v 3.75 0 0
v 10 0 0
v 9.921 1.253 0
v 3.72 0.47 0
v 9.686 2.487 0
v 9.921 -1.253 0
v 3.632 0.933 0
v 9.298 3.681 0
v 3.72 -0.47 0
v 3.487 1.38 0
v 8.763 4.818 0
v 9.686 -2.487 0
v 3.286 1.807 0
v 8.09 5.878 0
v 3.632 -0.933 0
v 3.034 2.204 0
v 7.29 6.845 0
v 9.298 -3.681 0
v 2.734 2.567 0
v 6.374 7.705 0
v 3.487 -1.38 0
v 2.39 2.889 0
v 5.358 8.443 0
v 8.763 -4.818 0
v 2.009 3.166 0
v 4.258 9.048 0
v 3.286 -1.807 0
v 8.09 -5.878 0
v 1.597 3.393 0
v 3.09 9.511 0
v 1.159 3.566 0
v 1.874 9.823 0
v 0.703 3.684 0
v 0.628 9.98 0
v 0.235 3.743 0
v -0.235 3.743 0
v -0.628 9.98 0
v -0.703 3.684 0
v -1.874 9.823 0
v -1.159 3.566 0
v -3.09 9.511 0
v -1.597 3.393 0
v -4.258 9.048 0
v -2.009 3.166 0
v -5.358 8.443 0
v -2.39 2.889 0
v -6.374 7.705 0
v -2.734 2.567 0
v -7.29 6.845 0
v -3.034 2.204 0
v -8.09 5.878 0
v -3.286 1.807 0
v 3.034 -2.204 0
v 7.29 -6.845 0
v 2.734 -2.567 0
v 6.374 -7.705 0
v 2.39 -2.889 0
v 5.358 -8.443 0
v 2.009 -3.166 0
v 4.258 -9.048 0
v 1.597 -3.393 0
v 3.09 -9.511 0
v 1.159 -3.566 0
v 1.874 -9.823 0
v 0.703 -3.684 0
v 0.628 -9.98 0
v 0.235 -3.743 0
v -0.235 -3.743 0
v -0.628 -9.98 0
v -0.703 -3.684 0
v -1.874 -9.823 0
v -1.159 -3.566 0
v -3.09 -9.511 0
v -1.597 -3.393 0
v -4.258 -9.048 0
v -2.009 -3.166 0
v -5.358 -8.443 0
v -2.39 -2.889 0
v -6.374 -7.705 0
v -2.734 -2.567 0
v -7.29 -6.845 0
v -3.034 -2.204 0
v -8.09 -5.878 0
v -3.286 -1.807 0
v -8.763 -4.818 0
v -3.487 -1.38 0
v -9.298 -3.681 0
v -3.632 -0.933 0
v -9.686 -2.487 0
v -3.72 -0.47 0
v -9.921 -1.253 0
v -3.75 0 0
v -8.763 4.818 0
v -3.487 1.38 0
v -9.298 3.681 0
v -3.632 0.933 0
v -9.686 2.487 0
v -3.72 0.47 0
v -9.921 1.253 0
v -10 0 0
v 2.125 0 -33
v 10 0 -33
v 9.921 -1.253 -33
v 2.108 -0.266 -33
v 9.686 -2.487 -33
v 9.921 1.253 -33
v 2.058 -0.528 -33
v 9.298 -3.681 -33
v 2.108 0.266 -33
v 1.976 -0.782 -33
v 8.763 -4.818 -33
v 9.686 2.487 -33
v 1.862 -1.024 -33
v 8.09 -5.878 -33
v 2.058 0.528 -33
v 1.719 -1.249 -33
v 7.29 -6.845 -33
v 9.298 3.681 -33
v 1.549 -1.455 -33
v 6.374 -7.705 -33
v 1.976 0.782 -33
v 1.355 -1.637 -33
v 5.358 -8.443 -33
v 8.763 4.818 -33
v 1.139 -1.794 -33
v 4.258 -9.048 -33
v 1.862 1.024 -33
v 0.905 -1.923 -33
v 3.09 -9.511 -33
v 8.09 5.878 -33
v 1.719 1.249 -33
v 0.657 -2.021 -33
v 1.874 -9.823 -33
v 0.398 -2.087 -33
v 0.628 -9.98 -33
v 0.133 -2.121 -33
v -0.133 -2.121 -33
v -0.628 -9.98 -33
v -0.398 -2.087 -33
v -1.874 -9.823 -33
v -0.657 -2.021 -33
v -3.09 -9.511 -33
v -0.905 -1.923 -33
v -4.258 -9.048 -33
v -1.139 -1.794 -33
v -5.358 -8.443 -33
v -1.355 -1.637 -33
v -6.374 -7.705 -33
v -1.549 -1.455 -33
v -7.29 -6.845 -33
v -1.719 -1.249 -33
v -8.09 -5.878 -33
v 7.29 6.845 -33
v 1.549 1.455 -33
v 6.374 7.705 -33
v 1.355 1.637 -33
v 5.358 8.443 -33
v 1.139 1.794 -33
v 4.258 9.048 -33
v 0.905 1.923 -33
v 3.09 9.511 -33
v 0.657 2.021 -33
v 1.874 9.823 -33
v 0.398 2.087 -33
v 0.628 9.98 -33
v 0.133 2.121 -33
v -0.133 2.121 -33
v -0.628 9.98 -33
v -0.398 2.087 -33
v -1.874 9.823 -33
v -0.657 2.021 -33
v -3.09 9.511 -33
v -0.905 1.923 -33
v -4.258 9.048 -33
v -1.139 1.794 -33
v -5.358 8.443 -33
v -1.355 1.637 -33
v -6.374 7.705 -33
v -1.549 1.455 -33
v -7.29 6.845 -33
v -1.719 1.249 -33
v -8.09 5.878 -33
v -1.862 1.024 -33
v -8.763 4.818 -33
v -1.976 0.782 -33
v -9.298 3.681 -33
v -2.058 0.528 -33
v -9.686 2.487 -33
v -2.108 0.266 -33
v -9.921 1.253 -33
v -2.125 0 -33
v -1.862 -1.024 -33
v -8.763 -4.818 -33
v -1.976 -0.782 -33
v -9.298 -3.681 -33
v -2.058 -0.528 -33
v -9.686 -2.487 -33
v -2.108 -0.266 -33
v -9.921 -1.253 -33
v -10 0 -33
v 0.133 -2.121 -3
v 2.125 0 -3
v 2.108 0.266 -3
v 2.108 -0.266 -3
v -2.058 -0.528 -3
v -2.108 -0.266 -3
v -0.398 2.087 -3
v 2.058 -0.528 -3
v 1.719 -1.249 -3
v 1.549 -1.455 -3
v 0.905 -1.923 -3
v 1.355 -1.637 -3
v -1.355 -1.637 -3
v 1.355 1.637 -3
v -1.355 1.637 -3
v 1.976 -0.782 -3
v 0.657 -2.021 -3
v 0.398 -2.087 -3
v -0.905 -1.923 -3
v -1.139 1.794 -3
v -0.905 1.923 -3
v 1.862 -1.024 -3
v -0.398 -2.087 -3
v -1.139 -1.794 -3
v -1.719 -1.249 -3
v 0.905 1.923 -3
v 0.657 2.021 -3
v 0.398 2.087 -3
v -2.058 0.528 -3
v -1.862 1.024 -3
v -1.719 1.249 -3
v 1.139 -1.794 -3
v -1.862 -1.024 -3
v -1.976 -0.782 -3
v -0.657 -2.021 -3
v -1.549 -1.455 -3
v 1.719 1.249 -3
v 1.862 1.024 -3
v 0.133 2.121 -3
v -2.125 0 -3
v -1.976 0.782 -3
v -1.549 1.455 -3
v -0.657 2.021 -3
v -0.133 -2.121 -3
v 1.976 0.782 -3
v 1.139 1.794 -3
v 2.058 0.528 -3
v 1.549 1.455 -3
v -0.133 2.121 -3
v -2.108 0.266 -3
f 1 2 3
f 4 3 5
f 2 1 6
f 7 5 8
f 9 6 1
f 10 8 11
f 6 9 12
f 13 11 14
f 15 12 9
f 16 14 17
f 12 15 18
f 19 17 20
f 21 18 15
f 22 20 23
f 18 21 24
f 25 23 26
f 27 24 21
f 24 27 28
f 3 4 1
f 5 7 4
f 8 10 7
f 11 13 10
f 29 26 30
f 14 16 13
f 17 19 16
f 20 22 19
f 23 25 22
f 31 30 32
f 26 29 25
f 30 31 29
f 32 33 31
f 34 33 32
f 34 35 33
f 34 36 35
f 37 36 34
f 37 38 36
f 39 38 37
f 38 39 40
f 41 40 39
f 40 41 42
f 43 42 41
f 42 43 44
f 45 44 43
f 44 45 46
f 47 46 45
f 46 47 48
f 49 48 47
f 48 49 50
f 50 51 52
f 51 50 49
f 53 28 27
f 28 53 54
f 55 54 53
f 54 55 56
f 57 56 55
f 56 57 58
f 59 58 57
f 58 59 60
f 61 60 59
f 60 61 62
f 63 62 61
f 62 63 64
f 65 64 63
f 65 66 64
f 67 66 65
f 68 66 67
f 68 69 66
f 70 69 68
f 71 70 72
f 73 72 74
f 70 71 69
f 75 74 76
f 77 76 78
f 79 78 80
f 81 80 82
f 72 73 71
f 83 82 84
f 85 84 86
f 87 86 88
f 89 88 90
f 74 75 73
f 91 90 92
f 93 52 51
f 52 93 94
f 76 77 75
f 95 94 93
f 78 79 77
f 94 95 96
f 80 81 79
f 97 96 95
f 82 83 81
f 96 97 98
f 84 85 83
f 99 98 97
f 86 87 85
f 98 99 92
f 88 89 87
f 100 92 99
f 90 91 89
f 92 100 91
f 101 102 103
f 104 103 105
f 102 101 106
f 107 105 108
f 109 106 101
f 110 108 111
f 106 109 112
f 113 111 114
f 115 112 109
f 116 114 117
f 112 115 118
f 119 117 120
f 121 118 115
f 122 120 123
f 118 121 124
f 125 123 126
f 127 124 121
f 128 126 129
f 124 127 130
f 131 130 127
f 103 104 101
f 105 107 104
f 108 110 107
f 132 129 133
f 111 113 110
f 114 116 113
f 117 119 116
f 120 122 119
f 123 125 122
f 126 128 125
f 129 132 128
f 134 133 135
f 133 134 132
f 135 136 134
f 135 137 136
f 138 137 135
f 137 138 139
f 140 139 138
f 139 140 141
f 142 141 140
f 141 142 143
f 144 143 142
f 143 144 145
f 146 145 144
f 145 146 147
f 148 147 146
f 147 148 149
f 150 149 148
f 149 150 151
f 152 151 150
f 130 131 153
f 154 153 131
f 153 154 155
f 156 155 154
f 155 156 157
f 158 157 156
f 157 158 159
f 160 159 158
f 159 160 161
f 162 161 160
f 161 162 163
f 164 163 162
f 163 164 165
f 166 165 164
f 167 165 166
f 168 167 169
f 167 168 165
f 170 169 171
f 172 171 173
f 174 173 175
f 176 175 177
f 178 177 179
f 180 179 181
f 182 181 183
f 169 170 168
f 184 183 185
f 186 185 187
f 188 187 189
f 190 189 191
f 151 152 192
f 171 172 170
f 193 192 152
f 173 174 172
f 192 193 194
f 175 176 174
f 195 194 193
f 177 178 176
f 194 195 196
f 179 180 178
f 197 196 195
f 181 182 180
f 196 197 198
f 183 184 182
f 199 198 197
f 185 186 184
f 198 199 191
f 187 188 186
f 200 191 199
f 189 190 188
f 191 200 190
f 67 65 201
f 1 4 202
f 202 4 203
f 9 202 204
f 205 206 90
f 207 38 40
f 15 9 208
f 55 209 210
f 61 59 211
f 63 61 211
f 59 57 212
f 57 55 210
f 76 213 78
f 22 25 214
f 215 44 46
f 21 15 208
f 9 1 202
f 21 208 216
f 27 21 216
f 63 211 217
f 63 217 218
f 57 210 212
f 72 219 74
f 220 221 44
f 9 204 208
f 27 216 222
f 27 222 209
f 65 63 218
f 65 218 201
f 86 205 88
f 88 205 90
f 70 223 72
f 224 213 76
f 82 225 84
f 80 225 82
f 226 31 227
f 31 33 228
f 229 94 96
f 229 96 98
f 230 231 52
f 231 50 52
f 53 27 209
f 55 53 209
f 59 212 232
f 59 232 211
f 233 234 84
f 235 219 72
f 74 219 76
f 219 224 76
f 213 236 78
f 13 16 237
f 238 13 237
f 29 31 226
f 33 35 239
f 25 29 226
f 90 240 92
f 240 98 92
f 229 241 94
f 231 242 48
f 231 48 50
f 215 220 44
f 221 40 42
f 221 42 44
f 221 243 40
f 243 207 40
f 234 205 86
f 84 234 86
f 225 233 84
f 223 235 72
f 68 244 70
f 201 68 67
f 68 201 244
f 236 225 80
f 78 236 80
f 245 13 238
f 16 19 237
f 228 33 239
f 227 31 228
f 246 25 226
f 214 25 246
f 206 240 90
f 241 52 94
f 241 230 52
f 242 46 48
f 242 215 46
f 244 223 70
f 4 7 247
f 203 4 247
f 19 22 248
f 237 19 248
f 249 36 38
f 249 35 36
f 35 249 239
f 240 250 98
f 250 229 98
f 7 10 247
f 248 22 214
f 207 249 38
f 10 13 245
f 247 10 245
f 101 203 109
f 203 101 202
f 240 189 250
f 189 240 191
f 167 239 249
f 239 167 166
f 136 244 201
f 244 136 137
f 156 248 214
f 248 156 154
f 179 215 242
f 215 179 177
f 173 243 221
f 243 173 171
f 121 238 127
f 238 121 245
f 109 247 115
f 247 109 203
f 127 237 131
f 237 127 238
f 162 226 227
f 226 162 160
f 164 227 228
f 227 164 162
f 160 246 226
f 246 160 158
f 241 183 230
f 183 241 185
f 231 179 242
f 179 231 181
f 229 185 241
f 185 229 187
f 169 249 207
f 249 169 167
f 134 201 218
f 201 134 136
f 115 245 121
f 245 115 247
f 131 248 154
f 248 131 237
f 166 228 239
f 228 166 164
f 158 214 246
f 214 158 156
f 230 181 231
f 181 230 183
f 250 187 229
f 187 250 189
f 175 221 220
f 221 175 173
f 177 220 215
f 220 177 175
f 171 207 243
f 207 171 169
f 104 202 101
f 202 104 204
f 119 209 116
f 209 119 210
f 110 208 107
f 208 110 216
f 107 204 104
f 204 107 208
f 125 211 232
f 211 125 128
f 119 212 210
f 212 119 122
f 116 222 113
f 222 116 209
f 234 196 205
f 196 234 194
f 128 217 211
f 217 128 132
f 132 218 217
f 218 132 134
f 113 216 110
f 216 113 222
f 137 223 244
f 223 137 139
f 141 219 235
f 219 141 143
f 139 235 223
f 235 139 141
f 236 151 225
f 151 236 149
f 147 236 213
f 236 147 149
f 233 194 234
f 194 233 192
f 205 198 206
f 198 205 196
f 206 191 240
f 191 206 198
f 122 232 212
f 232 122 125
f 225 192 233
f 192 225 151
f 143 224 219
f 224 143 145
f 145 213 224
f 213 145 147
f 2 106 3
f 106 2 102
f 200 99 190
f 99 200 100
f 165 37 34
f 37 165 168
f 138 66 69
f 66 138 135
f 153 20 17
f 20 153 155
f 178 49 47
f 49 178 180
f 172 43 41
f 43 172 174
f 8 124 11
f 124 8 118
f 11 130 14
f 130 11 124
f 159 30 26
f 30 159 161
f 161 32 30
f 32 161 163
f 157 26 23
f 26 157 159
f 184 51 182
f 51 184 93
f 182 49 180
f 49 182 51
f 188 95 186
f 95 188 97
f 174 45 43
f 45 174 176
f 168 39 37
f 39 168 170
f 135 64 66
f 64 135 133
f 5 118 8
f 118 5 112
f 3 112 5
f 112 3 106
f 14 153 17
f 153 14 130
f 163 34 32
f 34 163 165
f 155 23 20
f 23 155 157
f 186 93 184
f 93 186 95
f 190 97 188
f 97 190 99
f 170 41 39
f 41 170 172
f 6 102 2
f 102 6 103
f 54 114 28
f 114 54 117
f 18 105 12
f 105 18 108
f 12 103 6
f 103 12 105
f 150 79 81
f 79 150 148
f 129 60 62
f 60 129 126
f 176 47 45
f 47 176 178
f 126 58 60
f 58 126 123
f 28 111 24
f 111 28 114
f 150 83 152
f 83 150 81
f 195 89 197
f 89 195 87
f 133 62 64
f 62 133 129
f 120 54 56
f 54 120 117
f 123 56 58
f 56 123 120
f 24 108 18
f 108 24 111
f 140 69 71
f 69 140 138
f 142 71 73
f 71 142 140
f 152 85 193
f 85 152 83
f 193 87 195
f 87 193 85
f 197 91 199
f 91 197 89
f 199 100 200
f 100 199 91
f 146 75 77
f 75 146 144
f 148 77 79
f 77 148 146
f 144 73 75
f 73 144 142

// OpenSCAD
$fn = 50;


difference() {
	union() {
		translate(v = [0, 0, -33.0000000000]) {
			cylinder(h = 33, r = 10.0000000000);
		}
	}
	union() {
		translate(v = [0, 0, 0]) {
			rotate(a = [0, 0, 0]) {
				difference() {
					union() {
						#translate(v = [0, 0, -33.0000000000]) {
							cylinder(h = 33, r = 2.0000000000);
						}
						#translate(v = [0, 0, -3]) {
							cylinder(h = 3, r = 10.0000000000, r1 = 2.1250000000, r2 = 3.7500000000);
						}
						#translate(v = [0, 0, -33.0000000000]) {
							cylinder(h = 33, r = 2.1250000000);
						}
						#translate(v = [0, 0, -33.0000000000]) {
							cylinder(h = 33, r = 2.0000000000);
						}
					}
					union();
				}
			}
		}
	}
}
